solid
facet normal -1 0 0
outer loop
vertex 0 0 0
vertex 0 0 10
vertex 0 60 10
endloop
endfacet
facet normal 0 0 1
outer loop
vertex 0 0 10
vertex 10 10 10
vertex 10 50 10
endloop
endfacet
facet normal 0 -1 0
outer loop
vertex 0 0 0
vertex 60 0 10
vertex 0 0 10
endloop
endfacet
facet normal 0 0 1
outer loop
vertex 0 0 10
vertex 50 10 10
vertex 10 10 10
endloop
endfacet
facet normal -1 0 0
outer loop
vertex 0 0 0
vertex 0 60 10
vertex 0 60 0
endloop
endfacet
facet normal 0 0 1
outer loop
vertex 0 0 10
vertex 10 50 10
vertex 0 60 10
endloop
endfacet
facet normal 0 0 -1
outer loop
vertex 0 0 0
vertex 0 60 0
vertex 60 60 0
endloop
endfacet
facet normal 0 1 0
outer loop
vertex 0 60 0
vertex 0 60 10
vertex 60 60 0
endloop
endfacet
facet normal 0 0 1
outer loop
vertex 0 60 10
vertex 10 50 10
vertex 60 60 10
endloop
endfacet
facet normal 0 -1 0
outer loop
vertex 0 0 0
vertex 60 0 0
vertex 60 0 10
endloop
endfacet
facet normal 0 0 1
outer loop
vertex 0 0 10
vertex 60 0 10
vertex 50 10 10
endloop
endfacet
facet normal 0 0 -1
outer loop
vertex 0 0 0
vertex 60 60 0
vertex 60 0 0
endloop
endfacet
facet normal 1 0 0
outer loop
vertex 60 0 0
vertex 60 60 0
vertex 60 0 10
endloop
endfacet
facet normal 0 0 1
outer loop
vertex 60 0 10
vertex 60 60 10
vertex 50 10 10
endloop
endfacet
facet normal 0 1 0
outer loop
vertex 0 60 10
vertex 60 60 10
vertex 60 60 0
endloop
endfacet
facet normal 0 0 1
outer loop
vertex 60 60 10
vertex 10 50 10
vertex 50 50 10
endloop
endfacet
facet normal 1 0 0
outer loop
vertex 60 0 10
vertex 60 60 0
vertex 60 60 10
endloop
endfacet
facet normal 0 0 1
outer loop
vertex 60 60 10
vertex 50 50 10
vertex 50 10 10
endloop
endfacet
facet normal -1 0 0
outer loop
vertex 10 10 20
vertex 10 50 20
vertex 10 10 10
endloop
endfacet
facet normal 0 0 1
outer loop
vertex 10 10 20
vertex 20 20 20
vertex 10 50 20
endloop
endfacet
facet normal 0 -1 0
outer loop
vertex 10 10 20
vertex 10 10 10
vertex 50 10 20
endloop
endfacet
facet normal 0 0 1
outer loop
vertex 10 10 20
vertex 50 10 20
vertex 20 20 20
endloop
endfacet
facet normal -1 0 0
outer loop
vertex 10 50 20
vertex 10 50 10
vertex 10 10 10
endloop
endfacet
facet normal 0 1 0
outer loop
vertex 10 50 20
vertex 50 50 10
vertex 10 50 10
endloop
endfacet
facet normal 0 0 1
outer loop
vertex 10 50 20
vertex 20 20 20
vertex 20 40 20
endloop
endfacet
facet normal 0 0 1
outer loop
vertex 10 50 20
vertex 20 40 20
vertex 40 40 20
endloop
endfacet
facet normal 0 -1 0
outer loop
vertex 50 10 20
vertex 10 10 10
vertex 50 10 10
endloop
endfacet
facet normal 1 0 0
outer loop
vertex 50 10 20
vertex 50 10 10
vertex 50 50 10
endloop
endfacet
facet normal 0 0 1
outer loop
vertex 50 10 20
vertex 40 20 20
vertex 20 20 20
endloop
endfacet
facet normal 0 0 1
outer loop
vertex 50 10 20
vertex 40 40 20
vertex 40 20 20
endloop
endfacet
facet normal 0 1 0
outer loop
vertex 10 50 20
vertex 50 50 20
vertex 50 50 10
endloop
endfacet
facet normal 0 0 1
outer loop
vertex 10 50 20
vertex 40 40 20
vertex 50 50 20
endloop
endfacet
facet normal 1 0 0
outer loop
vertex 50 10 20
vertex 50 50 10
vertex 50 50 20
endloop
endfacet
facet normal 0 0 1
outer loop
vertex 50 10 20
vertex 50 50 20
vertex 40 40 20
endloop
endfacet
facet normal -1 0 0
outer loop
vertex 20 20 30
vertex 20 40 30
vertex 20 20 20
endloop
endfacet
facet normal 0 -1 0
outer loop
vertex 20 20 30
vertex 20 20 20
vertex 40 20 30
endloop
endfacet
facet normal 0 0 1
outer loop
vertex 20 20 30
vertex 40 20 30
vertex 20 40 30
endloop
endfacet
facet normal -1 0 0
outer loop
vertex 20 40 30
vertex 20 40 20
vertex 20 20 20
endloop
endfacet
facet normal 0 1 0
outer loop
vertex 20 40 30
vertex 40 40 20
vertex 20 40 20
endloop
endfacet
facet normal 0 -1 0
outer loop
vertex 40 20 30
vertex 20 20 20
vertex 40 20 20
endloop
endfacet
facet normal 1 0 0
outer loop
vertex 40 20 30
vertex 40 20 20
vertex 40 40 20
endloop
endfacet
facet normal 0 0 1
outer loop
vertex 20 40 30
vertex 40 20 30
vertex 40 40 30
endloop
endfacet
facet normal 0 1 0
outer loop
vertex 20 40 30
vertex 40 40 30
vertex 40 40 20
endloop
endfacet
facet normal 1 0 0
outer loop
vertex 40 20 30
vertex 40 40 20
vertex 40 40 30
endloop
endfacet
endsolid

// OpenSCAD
union(){
    cube([60,60,10]);
    translate([10,10,10]) cube([40,40,10]);
    translate([20,20,20]) cube([20,20,10]);
}
